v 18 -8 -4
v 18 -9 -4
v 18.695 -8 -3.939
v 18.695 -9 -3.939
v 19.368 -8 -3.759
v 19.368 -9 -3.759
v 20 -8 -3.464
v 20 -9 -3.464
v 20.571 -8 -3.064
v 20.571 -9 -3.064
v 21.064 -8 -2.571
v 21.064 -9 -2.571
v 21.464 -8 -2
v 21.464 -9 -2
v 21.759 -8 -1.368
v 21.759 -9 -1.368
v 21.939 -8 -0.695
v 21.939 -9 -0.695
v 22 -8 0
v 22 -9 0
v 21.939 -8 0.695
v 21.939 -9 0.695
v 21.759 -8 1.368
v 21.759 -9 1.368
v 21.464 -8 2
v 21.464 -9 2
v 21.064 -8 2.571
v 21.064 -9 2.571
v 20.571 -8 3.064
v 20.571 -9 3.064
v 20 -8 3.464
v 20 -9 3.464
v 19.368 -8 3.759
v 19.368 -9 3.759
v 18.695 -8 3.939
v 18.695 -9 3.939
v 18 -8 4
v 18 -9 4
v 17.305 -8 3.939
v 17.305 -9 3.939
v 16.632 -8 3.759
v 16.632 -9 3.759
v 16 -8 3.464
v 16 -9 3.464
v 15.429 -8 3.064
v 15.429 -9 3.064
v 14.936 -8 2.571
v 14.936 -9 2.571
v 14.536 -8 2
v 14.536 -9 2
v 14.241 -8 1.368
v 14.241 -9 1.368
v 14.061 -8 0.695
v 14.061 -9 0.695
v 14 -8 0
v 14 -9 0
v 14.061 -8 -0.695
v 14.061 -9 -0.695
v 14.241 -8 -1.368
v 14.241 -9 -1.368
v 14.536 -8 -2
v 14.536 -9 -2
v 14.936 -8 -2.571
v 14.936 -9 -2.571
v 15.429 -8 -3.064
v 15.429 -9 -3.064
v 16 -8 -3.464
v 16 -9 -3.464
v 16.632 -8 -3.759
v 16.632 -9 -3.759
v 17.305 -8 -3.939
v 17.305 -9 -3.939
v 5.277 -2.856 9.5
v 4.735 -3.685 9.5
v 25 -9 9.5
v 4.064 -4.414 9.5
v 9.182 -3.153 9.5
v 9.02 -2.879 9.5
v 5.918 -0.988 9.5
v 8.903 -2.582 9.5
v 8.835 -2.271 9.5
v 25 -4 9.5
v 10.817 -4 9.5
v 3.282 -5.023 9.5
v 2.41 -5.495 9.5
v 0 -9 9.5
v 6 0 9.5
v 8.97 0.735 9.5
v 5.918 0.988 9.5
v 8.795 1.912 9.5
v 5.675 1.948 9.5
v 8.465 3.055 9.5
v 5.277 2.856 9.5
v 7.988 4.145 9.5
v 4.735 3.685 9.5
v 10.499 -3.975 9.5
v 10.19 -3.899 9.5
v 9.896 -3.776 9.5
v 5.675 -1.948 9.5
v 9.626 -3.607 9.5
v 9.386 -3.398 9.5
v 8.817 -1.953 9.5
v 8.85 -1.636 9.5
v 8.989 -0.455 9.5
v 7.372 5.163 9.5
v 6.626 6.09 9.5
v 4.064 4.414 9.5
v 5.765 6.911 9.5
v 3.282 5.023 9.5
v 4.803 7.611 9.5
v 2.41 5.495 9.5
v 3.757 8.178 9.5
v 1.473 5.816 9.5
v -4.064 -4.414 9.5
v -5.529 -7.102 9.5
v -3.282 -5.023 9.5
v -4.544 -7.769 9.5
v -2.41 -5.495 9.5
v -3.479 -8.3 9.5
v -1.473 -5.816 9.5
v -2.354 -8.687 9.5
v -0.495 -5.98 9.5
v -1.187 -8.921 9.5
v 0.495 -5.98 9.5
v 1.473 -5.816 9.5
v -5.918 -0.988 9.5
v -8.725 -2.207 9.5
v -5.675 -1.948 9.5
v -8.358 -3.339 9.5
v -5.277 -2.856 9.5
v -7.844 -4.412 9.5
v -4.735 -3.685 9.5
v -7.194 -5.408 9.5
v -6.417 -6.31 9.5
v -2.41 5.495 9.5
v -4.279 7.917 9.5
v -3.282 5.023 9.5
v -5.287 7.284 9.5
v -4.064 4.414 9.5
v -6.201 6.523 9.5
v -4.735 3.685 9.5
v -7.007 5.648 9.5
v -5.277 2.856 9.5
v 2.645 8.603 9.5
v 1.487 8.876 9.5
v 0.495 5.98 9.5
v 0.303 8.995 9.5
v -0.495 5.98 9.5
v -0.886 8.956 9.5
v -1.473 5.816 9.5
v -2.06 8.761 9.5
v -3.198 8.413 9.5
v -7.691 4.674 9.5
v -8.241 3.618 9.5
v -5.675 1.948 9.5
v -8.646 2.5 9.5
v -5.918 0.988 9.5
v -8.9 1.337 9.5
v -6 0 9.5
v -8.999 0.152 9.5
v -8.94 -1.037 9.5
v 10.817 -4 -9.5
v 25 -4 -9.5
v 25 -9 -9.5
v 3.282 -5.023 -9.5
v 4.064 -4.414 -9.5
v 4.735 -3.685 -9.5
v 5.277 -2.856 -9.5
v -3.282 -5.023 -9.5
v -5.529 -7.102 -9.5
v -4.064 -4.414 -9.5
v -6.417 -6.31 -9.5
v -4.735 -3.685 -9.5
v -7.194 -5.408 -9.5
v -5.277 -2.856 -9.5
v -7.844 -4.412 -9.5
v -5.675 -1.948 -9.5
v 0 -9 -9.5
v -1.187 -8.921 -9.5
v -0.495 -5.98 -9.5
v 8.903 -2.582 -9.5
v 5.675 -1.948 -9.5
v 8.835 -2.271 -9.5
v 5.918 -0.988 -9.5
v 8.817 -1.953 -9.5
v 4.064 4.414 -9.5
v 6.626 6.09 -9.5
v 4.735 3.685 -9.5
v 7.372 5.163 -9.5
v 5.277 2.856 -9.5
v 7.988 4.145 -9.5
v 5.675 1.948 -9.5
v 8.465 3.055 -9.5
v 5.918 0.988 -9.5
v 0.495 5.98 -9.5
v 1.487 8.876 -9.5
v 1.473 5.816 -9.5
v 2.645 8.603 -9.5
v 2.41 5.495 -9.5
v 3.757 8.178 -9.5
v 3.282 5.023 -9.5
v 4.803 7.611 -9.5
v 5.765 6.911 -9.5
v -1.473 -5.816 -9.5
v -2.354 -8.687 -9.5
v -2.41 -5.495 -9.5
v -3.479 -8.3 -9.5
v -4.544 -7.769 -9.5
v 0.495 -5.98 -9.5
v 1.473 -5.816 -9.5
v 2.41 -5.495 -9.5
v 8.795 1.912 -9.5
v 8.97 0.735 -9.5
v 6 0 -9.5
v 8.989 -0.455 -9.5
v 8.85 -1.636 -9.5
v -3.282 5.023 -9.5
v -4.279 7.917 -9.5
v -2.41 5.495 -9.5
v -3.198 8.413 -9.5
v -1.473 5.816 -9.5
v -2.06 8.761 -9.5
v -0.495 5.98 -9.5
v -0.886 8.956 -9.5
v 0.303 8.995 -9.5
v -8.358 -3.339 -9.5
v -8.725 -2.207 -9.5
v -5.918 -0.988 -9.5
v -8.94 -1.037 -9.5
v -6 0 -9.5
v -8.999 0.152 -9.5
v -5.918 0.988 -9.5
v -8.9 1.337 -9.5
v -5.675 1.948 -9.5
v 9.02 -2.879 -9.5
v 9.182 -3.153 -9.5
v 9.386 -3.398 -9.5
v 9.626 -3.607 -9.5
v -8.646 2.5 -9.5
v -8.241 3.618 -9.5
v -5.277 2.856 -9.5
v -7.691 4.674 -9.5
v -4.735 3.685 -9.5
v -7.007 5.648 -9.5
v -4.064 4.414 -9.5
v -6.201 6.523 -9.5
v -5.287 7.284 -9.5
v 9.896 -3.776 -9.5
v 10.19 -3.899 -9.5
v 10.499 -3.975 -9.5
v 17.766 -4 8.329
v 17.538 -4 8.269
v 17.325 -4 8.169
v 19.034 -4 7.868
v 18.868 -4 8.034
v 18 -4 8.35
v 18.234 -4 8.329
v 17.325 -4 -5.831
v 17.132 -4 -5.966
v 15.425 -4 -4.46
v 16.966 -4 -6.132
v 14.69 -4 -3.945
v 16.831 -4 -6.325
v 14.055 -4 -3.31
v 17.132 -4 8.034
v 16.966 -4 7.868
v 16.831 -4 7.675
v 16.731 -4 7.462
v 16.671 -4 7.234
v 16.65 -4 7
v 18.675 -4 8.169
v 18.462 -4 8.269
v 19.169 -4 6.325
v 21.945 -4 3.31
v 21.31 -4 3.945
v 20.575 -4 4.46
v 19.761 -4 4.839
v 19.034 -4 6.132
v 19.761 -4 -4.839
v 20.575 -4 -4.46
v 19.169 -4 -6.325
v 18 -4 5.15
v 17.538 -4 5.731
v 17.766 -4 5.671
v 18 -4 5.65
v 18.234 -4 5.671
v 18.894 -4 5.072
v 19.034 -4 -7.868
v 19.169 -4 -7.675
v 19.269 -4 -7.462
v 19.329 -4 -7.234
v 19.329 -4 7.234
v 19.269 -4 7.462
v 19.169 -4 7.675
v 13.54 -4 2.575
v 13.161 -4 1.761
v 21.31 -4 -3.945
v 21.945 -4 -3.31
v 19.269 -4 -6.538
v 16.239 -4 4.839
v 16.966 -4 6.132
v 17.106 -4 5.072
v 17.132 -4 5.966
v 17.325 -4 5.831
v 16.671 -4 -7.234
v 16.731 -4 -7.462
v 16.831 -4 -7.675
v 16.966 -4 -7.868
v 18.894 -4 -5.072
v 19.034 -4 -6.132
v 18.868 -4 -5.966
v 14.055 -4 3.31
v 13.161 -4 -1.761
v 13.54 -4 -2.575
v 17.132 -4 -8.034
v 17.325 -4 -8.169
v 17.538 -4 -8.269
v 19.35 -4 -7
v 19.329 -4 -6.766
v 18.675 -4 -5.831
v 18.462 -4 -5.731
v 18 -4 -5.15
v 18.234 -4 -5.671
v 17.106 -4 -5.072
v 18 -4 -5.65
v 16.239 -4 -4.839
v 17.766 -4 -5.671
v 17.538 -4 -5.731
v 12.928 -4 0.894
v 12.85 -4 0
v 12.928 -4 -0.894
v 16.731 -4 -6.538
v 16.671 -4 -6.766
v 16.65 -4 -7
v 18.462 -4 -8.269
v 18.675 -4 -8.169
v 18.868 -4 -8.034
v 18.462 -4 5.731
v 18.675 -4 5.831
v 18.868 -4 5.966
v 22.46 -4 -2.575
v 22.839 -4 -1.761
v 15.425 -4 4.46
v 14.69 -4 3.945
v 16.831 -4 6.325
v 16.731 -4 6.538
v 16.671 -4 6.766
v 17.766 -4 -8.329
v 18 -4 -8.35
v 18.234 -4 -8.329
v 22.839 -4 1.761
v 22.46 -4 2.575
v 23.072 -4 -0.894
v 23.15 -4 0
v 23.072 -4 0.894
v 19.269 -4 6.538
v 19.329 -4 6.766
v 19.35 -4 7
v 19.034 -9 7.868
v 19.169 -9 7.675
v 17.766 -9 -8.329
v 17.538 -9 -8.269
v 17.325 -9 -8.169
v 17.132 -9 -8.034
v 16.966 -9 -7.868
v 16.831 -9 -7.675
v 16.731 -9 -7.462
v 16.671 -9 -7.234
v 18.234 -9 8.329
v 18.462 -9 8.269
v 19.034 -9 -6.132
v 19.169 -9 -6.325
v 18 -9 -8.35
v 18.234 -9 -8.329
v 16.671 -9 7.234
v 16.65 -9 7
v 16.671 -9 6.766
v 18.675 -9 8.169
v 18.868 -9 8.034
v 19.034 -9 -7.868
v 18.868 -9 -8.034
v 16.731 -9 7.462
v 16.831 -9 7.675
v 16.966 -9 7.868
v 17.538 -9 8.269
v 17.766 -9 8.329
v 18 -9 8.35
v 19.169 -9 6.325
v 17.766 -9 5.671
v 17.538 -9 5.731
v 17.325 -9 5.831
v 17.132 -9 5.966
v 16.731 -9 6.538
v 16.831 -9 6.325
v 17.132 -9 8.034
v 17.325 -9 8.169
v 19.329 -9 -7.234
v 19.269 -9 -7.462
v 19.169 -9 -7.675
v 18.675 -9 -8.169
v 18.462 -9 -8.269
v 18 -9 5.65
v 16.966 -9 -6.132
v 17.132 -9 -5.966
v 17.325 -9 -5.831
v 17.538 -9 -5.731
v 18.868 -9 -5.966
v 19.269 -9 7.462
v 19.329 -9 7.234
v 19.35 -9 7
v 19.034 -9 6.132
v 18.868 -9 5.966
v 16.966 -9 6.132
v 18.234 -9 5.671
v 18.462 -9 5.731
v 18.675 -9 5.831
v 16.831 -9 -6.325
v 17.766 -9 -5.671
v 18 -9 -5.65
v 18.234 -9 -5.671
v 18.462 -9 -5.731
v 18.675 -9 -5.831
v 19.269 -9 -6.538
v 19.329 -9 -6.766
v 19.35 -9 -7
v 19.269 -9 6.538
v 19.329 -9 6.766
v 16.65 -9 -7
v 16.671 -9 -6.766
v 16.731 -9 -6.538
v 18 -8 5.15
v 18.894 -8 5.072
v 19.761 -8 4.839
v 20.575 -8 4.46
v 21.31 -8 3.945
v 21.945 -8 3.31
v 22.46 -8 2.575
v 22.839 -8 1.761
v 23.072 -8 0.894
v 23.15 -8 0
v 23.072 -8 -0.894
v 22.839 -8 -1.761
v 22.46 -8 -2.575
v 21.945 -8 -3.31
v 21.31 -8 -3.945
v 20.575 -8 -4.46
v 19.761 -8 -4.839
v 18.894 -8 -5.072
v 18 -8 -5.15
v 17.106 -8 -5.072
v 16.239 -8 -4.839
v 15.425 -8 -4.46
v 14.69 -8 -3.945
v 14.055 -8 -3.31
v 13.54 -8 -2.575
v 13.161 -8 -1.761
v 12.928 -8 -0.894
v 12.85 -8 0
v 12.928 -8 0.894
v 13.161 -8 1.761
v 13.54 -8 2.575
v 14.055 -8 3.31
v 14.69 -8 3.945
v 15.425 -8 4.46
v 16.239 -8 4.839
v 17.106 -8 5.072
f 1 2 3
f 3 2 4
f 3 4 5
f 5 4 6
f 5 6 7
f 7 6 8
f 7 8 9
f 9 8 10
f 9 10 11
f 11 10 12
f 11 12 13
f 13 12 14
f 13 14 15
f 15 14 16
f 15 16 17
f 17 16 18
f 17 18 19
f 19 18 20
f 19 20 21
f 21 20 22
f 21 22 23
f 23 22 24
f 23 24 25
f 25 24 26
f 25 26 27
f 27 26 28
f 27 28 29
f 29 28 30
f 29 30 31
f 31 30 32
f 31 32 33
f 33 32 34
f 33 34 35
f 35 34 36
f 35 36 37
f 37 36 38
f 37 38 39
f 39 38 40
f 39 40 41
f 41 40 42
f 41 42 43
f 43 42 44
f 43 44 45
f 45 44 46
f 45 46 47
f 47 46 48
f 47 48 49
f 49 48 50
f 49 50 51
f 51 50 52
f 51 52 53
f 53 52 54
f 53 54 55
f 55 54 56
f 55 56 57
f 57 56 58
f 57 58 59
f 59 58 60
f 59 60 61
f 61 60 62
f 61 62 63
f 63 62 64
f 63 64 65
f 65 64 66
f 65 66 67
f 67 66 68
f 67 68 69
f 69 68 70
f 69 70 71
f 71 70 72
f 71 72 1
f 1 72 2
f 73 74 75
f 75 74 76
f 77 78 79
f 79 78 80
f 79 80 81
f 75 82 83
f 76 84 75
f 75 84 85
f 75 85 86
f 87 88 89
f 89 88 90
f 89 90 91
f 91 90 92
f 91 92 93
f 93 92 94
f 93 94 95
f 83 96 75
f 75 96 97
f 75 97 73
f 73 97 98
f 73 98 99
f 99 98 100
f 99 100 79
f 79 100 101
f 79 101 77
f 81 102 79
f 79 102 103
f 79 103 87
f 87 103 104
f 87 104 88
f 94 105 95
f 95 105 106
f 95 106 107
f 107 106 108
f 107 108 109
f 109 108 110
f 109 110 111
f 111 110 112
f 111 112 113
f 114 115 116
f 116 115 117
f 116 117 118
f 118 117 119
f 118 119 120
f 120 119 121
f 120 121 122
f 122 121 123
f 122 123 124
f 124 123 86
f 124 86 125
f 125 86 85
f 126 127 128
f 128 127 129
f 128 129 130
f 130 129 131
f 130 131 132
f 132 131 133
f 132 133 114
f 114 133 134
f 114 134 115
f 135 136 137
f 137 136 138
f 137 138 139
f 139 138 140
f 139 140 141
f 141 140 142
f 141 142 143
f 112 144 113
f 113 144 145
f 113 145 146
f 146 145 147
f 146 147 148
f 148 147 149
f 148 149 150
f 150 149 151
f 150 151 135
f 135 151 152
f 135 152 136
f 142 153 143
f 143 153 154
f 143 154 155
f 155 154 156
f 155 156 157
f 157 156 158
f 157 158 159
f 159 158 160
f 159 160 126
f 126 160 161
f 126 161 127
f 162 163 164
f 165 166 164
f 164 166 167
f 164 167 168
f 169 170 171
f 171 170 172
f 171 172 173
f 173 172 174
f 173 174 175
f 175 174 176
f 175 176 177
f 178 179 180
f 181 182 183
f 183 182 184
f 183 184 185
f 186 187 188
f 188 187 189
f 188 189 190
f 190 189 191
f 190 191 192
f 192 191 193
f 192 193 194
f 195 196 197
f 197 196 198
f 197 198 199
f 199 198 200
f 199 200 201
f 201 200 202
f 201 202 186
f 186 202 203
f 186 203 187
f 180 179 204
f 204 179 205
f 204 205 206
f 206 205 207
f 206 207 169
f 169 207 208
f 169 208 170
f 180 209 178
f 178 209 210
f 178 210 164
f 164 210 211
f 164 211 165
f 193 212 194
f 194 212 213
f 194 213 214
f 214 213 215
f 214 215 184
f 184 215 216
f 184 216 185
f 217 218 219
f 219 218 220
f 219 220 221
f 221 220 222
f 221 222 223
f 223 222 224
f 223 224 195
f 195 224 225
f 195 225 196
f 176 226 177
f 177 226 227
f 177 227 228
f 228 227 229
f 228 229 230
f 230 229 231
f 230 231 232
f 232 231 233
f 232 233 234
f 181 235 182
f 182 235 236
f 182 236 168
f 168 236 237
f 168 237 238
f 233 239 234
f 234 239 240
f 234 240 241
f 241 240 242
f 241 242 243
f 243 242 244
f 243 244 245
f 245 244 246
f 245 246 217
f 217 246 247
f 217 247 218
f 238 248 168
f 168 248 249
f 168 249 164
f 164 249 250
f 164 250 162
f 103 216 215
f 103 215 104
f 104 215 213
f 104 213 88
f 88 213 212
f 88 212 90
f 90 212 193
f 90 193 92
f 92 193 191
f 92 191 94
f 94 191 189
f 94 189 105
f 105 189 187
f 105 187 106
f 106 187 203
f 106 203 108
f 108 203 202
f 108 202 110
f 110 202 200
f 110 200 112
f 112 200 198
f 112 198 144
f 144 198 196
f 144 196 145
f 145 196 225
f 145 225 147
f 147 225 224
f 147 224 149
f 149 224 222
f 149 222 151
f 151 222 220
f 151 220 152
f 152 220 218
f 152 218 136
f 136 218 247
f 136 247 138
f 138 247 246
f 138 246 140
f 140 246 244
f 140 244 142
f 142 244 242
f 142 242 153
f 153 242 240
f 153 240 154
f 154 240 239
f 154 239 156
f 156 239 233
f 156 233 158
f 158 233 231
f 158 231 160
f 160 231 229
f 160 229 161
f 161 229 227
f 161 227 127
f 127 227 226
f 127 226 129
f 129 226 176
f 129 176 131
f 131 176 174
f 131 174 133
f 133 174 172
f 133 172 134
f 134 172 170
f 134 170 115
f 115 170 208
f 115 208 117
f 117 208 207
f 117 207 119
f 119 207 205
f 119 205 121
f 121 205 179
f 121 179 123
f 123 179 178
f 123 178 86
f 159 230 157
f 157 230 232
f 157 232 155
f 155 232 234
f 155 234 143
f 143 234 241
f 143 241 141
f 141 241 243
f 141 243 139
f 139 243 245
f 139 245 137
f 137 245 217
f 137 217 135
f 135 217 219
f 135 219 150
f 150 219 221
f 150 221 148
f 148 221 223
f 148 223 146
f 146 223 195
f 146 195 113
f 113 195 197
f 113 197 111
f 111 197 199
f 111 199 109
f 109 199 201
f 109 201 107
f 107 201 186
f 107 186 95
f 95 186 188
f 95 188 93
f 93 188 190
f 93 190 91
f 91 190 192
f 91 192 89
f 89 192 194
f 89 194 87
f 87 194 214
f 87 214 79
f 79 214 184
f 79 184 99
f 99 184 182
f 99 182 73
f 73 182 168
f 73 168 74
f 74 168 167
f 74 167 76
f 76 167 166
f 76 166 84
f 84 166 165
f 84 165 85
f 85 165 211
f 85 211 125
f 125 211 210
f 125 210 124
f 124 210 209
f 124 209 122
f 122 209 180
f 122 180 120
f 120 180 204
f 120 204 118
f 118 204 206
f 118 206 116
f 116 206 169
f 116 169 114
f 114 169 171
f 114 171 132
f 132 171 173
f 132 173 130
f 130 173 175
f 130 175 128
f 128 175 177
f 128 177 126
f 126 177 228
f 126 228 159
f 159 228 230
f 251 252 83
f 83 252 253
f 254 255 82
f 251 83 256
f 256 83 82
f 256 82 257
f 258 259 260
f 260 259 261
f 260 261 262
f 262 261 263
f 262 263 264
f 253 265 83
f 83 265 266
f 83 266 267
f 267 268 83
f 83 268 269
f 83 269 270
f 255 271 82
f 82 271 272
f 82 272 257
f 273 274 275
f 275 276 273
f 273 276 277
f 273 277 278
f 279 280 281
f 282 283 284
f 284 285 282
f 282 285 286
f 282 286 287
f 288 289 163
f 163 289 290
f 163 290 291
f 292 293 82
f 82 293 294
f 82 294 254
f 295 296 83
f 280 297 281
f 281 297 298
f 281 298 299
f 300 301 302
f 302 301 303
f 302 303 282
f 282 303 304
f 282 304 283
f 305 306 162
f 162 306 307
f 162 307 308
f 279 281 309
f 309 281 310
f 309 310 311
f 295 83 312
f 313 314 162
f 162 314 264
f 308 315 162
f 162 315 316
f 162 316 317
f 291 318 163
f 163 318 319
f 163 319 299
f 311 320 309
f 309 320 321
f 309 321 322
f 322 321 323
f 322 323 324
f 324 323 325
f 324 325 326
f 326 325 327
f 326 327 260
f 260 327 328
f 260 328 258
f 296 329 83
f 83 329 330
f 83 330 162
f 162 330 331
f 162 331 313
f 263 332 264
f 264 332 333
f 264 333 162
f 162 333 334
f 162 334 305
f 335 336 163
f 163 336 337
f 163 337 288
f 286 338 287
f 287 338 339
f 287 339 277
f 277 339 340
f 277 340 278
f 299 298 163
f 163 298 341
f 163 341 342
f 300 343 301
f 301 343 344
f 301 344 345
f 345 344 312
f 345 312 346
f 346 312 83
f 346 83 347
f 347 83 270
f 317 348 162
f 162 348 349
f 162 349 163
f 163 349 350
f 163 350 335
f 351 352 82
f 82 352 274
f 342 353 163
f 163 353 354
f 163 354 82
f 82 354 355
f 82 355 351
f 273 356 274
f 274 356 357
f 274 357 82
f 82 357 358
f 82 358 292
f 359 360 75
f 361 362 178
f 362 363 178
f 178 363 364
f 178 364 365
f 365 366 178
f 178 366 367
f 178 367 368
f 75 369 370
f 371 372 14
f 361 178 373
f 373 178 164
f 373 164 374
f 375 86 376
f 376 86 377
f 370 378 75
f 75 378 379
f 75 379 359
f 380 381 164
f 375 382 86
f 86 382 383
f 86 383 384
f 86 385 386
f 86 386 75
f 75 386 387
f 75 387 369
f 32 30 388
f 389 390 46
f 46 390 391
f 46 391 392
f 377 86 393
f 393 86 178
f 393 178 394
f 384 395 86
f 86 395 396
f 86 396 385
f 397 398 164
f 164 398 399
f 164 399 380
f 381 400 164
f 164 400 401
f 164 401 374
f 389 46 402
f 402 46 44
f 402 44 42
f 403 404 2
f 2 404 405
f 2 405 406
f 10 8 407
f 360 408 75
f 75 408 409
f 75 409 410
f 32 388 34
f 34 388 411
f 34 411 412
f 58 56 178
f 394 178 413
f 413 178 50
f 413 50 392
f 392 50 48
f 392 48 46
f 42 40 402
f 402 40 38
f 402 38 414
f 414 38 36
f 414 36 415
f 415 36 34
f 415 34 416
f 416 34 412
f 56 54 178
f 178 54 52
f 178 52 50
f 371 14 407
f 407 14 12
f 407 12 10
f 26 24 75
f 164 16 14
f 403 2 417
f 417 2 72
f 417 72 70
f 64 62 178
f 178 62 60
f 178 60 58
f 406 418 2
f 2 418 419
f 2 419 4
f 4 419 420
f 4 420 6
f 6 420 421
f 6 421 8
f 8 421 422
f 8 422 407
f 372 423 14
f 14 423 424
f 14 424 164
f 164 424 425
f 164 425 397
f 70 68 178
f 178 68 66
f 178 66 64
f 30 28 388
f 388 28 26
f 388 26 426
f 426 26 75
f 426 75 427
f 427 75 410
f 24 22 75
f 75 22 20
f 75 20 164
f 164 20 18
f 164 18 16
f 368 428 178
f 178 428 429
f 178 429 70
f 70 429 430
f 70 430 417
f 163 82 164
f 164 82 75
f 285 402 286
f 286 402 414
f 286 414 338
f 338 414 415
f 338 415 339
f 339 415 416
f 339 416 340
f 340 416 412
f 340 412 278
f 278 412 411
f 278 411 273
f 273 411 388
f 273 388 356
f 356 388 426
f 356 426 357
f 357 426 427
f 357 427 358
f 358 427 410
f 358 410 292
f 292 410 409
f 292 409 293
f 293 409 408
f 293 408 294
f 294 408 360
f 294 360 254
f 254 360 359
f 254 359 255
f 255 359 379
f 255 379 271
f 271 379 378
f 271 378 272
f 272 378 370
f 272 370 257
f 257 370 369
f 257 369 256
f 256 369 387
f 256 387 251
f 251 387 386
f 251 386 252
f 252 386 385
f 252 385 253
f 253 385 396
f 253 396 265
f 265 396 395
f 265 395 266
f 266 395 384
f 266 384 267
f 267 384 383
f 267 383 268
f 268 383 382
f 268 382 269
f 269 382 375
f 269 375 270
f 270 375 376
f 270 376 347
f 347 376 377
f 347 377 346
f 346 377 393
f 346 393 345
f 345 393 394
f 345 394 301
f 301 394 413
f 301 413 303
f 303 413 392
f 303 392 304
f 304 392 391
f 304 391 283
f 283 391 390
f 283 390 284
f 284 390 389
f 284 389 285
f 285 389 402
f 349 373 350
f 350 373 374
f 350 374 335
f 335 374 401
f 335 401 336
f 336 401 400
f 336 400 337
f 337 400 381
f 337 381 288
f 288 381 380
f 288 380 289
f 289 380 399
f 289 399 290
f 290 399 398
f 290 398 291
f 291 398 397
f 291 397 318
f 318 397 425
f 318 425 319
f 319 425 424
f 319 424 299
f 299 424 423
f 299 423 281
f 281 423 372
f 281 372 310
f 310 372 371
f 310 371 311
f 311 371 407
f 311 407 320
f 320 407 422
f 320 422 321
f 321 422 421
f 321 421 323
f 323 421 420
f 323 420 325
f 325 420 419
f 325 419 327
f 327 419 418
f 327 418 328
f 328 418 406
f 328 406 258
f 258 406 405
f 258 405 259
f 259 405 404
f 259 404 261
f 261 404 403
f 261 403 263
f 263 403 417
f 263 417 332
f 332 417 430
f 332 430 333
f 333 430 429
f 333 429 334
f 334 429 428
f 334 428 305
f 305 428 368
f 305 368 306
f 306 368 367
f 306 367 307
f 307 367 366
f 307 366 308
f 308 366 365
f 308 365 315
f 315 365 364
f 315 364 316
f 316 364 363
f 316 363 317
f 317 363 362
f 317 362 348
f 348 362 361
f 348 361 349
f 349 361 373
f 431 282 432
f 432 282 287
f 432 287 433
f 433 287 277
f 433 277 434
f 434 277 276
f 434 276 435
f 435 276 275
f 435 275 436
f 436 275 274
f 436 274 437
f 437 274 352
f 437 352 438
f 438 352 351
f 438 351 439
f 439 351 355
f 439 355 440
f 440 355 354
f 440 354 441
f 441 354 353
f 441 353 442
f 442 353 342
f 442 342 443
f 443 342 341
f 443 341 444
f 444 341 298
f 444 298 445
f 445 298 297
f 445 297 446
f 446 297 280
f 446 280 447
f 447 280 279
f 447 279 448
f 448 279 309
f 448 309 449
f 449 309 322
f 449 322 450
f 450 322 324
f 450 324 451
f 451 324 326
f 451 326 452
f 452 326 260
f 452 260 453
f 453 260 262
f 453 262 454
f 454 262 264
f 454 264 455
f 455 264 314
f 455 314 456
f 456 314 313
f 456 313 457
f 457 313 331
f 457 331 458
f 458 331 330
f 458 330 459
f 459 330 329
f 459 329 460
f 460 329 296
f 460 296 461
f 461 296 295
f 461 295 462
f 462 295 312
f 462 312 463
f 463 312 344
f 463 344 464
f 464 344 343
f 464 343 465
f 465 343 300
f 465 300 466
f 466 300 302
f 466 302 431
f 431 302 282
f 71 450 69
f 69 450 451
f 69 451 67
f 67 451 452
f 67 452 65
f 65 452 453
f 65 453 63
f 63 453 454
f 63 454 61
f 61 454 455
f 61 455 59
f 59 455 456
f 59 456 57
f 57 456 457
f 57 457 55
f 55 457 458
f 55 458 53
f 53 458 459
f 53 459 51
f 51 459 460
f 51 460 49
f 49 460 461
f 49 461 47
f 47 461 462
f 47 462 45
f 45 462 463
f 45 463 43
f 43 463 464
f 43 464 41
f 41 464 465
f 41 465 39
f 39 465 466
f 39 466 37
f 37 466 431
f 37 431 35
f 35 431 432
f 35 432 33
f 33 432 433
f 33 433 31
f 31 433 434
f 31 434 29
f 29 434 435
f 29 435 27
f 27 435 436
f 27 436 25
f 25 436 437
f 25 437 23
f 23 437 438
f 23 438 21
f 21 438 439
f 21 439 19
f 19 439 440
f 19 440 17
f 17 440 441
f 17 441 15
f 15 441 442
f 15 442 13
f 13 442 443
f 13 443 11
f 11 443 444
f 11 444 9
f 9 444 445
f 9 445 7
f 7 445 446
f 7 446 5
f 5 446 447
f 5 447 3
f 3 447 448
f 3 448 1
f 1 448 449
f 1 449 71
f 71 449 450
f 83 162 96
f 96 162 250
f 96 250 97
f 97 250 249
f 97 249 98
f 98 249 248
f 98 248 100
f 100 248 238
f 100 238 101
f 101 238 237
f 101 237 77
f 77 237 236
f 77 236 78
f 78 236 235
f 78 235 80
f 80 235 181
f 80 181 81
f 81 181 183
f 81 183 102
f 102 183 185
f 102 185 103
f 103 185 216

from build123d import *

# Parameters (mm, degrees)
SKETCH1_R                  = 9
SKETCH1_R_2                = 6
MAIN_DEPTH                 = 9.5
SKETCH2_W                  = 25
SKETCH2_H                  = 19
SKETCH2_R                  = 4
SKETCH2_R_2                = 1.35
BALLSUPPORTEXTRUSION_DEPTH = 5
SKETCH3_R                  = 5.15
BALLSUPPORTHOLE_DEPTH      = 4
FILLET2_R                  = 2
SKETCH5_R                  = 6
CUT_EXTRUDE2_DEPTH         = 20


with BuildPart() as part:
    # Sketch1 → Main (new body, symmetric)
    with BuildSketch(Plane.XY):
        Circle(SKETCH1_R)
        Circle(SKETCH1_R_2, mode=Mode.SUBTRACT)
    extrude(amount=MAIN_DEPTH, both=True)

    # Sketch2 → BallSupportExtrusion (add)
    with BuildSketch(Plane(origin=(0, -9, 0), x_dir=(1, 0, 0), z_dir=(0, 1, 0))):
        with Locations((12.5, 0)):
            Rectangle(SKETCH2_W, SKETCH2_H)
        with Locations((18, 0)):
            Circle(SKETCH2_R, mode=Mode.SUBTRACT)
        with Locations((18, 7)):
            Circle(SKETCH2_R_2, mode=Mode.SUBTRACT)
        with Locations((18, -7)):
            Circle(SKETCH2_R_2, mode=Mode.SUBTRACT)
    extrude(amount=BALLSUPPORTEXTRUSION_DEPTH)

    # Sketch3 → BallSupportHole (cut)
    with BuildSketch(Plane(origin=(0, -4, 0), x_dir=(1, 0, 0), z_dir=(0, 1, 0))):
        with Locations((18, 0)):
            Circle(SKETCH3_R)
    extrude(amount=-BALLSUPPORTHOLE_DEPTH, mode=Mode.SUBTRACT)

    # Fillet2
    fillet2_edges = [part.edges().sort_by_distance(p)[0] for p in [
        (8.062257748, -4, 0),
    ]]
    fillet(fillet2_edges, radius=FILLET2_R)

    # Sketch5 → Cut-Extrude2 (cut, through all)
    with BuildSketch(Plane.XY.offset(9.5)):
        Circle(SKETCH5_R)
    extrude(amount=-CUT_EXTRUDE2_DEPTH, mode=Mode.SUBTRACT)


solid = part.part
